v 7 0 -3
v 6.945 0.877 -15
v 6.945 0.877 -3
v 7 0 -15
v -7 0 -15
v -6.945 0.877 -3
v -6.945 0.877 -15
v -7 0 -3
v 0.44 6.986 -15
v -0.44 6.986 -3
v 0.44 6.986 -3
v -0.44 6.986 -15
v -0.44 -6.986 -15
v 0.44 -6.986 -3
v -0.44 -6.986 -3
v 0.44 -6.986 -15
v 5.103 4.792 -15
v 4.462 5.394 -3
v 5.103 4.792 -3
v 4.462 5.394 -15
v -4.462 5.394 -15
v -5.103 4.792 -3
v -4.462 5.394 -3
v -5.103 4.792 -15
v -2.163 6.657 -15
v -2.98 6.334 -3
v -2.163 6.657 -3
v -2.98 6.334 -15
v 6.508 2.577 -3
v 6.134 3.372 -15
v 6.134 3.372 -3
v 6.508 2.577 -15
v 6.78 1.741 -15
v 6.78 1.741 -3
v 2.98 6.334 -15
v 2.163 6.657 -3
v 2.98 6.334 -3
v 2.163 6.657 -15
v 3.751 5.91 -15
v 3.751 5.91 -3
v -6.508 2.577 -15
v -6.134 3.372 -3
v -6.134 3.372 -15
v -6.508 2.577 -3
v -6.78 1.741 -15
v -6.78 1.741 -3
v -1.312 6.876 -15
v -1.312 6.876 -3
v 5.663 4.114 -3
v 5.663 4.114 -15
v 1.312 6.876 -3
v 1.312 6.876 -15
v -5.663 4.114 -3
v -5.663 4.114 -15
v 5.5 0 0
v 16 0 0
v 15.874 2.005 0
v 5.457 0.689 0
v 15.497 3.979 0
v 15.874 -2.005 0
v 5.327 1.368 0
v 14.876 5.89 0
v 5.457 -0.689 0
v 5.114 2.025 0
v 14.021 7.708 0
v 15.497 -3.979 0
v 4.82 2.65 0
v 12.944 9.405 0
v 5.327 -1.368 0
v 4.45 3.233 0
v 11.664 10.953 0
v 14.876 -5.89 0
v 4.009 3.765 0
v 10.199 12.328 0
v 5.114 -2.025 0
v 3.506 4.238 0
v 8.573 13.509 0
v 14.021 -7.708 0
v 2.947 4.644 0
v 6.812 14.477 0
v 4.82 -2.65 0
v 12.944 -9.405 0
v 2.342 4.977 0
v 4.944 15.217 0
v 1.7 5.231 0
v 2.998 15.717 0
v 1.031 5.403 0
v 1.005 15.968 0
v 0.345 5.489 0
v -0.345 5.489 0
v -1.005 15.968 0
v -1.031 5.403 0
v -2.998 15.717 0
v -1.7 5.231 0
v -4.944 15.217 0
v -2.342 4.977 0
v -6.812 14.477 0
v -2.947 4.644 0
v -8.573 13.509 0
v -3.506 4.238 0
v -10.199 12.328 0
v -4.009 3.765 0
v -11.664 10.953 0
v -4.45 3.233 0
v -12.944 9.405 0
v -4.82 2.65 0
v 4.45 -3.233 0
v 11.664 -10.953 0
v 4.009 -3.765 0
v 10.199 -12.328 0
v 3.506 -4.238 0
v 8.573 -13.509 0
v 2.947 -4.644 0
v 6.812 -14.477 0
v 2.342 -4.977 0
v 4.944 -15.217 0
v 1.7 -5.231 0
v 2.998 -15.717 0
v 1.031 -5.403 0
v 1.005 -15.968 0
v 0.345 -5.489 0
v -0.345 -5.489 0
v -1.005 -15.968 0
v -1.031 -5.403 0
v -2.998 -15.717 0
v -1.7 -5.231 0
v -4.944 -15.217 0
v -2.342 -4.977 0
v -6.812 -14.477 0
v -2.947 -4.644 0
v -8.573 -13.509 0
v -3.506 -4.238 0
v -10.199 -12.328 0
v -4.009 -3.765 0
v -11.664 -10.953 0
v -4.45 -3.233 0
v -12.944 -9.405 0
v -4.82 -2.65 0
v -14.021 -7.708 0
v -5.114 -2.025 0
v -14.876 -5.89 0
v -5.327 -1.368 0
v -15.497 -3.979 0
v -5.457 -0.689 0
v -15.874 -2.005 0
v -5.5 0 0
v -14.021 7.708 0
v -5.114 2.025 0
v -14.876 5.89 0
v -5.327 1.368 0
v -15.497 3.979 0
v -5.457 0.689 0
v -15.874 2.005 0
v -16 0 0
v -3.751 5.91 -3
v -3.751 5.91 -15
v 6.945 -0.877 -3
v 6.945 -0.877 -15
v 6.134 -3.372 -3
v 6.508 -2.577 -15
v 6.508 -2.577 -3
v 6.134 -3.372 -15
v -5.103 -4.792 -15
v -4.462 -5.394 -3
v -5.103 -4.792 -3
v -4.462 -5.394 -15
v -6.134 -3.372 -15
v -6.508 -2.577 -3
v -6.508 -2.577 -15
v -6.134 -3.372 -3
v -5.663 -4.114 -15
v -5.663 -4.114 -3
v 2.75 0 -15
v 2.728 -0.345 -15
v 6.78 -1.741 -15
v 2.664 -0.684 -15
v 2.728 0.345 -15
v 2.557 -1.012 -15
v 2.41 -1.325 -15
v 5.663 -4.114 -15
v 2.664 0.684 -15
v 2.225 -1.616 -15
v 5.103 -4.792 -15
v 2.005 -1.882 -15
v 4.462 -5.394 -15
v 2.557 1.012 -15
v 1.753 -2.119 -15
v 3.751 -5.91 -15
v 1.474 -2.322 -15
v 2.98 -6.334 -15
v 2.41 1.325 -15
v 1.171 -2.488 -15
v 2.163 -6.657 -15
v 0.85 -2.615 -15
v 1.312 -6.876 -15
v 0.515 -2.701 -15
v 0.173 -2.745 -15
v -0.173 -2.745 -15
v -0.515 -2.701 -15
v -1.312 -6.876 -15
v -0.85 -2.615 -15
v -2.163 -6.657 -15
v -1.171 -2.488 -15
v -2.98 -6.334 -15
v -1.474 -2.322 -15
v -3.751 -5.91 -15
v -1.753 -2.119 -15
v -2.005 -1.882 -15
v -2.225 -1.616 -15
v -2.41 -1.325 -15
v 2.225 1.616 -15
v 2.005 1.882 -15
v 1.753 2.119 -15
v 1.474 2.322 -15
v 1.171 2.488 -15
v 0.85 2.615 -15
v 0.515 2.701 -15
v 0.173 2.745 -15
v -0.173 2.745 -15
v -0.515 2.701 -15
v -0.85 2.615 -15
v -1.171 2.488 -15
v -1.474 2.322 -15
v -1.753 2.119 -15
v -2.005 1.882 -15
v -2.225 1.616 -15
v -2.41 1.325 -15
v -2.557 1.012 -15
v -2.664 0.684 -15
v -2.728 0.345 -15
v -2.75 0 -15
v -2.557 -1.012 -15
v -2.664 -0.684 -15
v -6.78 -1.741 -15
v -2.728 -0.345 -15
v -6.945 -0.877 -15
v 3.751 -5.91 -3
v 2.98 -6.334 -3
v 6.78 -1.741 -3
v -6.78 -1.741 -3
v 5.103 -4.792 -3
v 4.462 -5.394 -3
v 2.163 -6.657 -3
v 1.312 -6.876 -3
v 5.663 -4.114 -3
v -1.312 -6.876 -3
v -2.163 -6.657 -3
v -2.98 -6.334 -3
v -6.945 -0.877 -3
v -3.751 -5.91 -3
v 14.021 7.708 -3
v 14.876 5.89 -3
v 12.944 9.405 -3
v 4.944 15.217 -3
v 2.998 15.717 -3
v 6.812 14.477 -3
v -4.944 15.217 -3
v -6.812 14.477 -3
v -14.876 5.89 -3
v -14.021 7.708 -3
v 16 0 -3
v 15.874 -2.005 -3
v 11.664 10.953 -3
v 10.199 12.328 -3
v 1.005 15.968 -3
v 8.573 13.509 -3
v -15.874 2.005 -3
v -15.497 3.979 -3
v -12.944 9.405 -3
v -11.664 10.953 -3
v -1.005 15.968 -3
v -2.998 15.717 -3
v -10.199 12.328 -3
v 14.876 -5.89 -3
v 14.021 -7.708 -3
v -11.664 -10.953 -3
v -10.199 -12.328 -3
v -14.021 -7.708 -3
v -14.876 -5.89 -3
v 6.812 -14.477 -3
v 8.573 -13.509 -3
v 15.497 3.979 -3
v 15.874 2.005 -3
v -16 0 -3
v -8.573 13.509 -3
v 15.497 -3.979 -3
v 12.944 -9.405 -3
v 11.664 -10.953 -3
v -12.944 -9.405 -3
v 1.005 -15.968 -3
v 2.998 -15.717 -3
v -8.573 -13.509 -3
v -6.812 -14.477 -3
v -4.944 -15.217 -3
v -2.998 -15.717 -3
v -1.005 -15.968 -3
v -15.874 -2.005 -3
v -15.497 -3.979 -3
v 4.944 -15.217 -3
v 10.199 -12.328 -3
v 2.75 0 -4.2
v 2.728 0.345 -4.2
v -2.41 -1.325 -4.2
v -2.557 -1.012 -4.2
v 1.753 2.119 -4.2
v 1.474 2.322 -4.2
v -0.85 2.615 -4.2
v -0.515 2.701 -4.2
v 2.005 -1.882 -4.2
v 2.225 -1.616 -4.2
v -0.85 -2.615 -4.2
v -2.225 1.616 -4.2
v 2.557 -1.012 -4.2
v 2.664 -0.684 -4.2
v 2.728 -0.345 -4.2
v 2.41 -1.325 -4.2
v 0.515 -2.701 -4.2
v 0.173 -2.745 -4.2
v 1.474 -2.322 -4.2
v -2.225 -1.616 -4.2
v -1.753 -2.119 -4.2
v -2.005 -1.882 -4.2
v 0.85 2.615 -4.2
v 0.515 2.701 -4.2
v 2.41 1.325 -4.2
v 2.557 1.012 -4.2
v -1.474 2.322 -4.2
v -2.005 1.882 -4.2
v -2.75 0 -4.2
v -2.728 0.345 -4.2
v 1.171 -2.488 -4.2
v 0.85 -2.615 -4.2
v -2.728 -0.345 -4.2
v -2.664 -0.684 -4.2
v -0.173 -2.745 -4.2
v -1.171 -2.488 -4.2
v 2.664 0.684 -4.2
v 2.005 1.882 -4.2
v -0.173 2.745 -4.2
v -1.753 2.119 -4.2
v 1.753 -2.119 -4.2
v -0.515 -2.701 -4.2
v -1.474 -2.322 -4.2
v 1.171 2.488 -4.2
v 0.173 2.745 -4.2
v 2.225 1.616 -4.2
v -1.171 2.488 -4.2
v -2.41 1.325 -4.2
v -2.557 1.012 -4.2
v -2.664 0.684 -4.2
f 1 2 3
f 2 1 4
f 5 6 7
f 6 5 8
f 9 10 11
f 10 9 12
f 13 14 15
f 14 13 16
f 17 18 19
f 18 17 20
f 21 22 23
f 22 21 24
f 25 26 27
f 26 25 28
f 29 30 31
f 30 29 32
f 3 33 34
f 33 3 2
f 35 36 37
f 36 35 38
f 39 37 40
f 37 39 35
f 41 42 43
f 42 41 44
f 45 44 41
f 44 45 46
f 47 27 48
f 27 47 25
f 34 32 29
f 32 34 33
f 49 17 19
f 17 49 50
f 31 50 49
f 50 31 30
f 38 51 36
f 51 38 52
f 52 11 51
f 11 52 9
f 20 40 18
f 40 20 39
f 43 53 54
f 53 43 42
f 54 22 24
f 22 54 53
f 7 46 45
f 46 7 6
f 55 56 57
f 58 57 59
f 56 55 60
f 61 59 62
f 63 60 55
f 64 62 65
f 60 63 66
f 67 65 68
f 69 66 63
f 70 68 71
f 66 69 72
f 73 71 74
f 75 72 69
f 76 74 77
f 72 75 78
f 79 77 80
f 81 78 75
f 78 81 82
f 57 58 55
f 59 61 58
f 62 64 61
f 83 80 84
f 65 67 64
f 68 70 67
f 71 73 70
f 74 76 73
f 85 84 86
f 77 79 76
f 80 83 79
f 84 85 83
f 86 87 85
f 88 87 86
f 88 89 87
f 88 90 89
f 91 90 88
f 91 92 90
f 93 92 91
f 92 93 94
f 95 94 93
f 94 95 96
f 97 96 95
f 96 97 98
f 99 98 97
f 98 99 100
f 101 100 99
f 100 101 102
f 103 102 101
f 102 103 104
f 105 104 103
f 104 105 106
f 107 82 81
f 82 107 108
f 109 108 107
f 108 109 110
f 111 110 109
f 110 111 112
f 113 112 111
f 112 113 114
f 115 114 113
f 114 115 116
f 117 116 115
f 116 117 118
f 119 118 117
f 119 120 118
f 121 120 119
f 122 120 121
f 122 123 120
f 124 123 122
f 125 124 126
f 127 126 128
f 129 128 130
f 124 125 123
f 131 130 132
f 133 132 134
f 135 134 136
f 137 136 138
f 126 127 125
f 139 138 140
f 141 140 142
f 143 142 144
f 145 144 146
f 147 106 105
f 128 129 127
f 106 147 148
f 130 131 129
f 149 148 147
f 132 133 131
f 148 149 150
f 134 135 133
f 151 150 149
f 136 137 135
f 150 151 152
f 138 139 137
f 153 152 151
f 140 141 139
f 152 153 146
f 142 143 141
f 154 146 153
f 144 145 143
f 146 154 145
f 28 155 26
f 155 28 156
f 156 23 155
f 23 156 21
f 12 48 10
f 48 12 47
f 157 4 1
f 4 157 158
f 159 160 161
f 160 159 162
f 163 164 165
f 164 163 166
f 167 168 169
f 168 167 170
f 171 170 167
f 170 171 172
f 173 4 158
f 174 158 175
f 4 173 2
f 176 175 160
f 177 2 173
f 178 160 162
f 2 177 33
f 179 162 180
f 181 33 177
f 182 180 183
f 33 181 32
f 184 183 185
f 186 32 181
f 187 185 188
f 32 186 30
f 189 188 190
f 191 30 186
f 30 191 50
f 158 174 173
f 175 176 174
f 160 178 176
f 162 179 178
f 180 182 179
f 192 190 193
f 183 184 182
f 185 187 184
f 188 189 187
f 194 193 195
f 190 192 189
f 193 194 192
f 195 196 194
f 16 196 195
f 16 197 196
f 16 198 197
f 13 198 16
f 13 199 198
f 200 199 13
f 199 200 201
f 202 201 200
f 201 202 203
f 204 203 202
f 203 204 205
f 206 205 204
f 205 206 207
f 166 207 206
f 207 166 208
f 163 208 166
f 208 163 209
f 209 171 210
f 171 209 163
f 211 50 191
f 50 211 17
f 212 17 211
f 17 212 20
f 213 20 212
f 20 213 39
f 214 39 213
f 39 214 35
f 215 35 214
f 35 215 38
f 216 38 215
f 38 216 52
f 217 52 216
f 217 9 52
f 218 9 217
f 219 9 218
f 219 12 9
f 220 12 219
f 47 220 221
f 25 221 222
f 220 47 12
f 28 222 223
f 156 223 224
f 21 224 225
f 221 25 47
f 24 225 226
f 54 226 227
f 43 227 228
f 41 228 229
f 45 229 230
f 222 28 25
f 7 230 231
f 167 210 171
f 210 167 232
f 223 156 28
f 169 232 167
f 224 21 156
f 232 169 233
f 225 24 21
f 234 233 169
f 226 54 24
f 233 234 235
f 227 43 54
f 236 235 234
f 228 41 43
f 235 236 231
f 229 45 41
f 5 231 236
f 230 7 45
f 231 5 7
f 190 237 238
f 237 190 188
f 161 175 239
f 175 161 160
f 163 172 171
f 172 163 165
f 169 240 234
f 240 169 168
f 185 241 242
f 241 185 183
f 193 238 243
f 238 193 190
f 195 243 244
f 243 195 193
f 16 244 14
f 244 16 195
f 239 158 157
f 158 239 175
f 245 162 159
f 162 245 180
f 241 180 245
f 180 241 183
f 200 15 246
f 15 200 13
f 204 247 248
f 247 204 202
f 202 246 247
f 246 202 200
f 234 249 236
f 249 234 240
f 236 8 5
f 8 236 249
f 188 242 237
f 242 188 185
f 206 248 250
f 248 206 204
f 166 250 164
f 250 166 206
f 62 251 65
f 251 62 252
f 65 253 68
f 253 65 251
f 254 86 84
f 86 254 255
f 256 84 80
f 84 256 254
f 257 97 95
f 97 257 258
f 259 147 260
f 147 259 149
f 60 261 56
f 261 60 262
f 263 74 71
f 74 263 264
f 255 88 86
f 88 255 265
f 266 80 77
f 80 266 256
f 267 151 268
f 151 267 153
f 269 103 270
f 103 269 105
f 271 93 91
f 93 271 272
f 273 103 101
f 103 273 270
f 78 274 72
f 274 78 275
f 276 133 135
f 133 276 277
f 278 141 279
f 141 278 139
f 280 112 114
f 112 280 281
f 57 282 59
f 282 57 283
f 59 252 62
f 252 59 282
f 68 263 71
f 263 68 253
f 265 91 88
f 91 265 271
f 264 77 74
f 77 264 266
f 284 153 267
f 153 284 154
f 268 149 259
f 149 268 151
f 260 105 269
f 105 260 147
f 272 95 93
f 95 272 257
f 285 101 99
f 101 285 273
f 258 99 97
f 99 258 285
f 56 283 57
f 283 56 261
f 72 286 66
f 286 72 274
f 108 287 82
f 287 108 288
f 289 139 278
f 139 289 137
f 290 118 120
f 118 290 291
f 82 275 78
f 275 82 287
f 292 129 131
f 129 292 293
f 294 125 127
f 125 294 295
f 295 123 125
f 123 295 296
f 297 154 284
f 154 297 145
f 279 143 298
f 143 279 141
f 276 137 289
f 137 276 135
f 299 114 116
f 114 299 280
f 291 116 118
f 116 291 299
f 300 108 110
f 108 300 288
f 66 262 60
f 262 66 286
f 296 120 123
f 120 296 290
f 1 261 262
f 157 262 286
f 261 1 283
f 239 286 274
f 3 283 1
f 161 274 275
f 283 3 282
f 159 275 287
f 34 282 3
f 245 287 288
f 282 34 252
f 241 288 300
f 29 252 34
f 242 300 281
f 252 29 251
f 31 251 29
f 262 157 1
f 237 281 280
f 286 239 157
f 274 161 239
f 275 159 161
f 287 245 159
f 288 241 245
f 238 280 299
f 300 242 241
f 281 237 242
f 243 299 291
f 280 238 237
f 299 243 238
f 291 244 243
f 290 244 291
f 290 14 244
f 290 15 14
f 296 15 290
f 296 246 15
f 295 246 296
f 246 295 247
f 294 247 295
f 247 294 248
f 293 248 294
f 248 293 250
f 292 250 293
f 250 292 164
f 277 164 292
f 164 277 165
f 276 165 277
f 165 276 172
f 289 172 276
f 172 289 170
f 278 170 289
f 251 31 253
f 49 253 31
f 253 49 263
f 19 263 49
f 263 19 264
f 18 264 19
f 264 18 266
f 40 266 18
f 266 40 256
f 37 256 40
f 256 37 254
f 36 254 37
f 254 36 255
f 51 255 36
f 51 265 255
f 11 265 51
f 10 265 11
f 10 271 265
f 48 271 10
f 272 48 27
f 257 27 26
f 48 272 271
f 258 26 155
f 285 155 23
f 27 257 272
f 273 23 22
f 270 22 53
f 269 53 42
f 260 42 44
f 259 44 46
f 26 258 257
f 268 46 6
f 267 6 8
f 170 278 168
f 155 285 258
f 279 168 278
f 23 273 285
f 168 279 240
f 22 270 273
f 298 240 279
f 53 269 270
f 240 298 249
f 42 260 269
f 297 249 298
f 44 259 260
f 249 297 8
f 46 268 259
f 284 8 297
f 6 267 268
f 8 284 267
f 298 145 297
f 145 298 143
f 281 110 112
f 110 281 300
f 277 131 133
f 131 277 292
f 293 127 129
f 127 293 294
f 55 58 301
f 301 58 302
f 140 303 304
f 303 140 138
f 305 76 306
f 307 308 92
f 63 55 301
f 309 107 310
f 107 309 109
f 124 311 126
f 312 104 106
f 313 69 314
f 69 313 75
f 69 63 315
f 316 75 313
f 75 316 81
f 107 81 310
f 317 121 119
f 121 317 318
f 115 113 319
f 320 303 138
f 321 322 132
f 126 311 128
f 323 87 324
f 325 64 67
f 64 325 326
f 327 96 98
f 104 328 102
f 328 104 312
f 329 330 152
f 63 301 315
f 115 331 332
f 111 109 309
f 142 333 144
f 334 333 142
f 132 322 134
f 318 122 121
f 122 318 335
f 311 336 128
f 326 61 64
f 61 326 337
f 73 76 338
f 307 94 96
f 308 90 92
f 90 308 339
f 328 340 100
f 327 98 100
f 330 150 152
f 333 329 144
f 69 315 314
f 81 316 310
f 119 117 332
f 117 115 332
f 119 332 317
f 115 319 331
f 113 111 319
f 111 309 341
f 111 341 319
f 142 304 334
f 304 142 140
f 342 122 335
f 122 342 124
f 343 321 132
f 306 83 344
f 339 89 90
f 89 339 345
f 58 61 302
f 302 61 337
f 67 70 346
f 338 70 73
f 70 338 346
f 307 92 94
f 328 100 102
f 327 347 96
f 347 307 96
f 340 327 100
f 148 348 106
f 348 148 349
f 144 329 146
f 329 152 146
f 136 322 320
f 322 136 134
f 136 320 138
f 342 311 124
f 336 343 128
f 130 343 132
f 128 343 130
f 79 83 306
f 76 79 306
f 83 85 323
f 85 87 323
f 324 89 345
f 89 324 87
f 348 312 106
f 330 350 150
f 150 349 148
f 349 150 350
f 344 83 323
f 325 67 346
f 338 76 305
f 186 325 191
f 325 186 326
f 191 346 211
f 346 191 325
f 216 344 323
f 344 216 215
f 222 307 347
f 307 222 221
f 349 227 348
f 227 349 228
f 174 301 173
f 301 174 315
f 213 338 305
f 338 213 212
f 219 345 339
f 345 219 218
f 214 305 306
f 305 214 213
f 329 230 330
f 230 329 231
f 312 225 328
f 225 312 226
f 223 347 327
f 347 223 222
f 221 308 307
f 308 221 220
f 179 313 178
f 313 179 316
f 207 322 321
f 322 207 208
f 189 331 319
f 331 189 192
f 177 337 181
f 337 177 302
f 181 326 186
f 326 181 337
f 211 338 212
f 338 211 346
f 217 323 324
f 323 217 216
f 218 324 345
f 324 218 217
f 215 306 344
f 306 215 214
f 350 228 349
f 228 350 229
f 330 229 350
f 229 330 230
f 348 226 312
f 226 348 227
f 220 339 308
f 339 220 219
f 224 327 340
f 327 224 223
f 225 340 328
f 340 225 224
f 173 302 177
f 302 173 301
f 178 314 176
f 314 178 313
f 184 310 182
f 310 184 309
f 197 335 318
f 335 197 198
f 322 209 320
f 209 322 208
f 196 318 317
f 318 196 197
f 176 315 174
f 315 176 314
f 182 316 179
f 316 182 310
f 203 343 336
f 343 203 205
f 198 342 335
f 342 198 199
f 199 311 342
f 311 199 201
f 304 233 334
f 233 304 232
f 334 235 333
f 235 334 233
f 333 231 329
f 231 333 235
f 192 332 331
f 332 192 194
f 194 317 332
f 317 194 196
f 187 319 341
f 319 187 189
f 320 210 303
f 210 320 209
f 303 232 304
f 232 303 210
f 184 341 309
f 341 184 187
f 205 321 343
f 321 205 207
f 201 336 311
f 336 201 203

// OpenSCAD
$fn = 50;


difference() {
	union() {
		translate(v = [0, 0, -15.0000000000]) {
			cylinder(h = 15, r = 7.0000000000);
		}
		translate(v = [0, 0, -3.0000000000]) {
			cylinder(h = 3, r = 16.0000000000);
		}
	}
	union() {
		translate(v = [0, 0, 0]) {
			rotate(a = [0, 0, 0]) {
				difference() {
					union() {
						#translate(v = [0, 0, -15.0000000000]) {
							cylinder(h = 15, r = 2.2500000000);
						}
						#translate(v = [0, 0, -4.2000000000]) {
							cylinder(h = 4.2000000000, r = 7.0000000000, r1 = 2.7500000000, r2 = 5.5000000000);
						}
						#translate(v = [0, 0, -15.0000000000]) {
							cylinder(h = 15, r = 2.7500000000);
						}
						#translate(v = [0, 0, -15.0000000000]) {
							cylinder(h = 15, r = 2.2500000000);
						}
					}
					union();
				}
			}
		}
	}
}
